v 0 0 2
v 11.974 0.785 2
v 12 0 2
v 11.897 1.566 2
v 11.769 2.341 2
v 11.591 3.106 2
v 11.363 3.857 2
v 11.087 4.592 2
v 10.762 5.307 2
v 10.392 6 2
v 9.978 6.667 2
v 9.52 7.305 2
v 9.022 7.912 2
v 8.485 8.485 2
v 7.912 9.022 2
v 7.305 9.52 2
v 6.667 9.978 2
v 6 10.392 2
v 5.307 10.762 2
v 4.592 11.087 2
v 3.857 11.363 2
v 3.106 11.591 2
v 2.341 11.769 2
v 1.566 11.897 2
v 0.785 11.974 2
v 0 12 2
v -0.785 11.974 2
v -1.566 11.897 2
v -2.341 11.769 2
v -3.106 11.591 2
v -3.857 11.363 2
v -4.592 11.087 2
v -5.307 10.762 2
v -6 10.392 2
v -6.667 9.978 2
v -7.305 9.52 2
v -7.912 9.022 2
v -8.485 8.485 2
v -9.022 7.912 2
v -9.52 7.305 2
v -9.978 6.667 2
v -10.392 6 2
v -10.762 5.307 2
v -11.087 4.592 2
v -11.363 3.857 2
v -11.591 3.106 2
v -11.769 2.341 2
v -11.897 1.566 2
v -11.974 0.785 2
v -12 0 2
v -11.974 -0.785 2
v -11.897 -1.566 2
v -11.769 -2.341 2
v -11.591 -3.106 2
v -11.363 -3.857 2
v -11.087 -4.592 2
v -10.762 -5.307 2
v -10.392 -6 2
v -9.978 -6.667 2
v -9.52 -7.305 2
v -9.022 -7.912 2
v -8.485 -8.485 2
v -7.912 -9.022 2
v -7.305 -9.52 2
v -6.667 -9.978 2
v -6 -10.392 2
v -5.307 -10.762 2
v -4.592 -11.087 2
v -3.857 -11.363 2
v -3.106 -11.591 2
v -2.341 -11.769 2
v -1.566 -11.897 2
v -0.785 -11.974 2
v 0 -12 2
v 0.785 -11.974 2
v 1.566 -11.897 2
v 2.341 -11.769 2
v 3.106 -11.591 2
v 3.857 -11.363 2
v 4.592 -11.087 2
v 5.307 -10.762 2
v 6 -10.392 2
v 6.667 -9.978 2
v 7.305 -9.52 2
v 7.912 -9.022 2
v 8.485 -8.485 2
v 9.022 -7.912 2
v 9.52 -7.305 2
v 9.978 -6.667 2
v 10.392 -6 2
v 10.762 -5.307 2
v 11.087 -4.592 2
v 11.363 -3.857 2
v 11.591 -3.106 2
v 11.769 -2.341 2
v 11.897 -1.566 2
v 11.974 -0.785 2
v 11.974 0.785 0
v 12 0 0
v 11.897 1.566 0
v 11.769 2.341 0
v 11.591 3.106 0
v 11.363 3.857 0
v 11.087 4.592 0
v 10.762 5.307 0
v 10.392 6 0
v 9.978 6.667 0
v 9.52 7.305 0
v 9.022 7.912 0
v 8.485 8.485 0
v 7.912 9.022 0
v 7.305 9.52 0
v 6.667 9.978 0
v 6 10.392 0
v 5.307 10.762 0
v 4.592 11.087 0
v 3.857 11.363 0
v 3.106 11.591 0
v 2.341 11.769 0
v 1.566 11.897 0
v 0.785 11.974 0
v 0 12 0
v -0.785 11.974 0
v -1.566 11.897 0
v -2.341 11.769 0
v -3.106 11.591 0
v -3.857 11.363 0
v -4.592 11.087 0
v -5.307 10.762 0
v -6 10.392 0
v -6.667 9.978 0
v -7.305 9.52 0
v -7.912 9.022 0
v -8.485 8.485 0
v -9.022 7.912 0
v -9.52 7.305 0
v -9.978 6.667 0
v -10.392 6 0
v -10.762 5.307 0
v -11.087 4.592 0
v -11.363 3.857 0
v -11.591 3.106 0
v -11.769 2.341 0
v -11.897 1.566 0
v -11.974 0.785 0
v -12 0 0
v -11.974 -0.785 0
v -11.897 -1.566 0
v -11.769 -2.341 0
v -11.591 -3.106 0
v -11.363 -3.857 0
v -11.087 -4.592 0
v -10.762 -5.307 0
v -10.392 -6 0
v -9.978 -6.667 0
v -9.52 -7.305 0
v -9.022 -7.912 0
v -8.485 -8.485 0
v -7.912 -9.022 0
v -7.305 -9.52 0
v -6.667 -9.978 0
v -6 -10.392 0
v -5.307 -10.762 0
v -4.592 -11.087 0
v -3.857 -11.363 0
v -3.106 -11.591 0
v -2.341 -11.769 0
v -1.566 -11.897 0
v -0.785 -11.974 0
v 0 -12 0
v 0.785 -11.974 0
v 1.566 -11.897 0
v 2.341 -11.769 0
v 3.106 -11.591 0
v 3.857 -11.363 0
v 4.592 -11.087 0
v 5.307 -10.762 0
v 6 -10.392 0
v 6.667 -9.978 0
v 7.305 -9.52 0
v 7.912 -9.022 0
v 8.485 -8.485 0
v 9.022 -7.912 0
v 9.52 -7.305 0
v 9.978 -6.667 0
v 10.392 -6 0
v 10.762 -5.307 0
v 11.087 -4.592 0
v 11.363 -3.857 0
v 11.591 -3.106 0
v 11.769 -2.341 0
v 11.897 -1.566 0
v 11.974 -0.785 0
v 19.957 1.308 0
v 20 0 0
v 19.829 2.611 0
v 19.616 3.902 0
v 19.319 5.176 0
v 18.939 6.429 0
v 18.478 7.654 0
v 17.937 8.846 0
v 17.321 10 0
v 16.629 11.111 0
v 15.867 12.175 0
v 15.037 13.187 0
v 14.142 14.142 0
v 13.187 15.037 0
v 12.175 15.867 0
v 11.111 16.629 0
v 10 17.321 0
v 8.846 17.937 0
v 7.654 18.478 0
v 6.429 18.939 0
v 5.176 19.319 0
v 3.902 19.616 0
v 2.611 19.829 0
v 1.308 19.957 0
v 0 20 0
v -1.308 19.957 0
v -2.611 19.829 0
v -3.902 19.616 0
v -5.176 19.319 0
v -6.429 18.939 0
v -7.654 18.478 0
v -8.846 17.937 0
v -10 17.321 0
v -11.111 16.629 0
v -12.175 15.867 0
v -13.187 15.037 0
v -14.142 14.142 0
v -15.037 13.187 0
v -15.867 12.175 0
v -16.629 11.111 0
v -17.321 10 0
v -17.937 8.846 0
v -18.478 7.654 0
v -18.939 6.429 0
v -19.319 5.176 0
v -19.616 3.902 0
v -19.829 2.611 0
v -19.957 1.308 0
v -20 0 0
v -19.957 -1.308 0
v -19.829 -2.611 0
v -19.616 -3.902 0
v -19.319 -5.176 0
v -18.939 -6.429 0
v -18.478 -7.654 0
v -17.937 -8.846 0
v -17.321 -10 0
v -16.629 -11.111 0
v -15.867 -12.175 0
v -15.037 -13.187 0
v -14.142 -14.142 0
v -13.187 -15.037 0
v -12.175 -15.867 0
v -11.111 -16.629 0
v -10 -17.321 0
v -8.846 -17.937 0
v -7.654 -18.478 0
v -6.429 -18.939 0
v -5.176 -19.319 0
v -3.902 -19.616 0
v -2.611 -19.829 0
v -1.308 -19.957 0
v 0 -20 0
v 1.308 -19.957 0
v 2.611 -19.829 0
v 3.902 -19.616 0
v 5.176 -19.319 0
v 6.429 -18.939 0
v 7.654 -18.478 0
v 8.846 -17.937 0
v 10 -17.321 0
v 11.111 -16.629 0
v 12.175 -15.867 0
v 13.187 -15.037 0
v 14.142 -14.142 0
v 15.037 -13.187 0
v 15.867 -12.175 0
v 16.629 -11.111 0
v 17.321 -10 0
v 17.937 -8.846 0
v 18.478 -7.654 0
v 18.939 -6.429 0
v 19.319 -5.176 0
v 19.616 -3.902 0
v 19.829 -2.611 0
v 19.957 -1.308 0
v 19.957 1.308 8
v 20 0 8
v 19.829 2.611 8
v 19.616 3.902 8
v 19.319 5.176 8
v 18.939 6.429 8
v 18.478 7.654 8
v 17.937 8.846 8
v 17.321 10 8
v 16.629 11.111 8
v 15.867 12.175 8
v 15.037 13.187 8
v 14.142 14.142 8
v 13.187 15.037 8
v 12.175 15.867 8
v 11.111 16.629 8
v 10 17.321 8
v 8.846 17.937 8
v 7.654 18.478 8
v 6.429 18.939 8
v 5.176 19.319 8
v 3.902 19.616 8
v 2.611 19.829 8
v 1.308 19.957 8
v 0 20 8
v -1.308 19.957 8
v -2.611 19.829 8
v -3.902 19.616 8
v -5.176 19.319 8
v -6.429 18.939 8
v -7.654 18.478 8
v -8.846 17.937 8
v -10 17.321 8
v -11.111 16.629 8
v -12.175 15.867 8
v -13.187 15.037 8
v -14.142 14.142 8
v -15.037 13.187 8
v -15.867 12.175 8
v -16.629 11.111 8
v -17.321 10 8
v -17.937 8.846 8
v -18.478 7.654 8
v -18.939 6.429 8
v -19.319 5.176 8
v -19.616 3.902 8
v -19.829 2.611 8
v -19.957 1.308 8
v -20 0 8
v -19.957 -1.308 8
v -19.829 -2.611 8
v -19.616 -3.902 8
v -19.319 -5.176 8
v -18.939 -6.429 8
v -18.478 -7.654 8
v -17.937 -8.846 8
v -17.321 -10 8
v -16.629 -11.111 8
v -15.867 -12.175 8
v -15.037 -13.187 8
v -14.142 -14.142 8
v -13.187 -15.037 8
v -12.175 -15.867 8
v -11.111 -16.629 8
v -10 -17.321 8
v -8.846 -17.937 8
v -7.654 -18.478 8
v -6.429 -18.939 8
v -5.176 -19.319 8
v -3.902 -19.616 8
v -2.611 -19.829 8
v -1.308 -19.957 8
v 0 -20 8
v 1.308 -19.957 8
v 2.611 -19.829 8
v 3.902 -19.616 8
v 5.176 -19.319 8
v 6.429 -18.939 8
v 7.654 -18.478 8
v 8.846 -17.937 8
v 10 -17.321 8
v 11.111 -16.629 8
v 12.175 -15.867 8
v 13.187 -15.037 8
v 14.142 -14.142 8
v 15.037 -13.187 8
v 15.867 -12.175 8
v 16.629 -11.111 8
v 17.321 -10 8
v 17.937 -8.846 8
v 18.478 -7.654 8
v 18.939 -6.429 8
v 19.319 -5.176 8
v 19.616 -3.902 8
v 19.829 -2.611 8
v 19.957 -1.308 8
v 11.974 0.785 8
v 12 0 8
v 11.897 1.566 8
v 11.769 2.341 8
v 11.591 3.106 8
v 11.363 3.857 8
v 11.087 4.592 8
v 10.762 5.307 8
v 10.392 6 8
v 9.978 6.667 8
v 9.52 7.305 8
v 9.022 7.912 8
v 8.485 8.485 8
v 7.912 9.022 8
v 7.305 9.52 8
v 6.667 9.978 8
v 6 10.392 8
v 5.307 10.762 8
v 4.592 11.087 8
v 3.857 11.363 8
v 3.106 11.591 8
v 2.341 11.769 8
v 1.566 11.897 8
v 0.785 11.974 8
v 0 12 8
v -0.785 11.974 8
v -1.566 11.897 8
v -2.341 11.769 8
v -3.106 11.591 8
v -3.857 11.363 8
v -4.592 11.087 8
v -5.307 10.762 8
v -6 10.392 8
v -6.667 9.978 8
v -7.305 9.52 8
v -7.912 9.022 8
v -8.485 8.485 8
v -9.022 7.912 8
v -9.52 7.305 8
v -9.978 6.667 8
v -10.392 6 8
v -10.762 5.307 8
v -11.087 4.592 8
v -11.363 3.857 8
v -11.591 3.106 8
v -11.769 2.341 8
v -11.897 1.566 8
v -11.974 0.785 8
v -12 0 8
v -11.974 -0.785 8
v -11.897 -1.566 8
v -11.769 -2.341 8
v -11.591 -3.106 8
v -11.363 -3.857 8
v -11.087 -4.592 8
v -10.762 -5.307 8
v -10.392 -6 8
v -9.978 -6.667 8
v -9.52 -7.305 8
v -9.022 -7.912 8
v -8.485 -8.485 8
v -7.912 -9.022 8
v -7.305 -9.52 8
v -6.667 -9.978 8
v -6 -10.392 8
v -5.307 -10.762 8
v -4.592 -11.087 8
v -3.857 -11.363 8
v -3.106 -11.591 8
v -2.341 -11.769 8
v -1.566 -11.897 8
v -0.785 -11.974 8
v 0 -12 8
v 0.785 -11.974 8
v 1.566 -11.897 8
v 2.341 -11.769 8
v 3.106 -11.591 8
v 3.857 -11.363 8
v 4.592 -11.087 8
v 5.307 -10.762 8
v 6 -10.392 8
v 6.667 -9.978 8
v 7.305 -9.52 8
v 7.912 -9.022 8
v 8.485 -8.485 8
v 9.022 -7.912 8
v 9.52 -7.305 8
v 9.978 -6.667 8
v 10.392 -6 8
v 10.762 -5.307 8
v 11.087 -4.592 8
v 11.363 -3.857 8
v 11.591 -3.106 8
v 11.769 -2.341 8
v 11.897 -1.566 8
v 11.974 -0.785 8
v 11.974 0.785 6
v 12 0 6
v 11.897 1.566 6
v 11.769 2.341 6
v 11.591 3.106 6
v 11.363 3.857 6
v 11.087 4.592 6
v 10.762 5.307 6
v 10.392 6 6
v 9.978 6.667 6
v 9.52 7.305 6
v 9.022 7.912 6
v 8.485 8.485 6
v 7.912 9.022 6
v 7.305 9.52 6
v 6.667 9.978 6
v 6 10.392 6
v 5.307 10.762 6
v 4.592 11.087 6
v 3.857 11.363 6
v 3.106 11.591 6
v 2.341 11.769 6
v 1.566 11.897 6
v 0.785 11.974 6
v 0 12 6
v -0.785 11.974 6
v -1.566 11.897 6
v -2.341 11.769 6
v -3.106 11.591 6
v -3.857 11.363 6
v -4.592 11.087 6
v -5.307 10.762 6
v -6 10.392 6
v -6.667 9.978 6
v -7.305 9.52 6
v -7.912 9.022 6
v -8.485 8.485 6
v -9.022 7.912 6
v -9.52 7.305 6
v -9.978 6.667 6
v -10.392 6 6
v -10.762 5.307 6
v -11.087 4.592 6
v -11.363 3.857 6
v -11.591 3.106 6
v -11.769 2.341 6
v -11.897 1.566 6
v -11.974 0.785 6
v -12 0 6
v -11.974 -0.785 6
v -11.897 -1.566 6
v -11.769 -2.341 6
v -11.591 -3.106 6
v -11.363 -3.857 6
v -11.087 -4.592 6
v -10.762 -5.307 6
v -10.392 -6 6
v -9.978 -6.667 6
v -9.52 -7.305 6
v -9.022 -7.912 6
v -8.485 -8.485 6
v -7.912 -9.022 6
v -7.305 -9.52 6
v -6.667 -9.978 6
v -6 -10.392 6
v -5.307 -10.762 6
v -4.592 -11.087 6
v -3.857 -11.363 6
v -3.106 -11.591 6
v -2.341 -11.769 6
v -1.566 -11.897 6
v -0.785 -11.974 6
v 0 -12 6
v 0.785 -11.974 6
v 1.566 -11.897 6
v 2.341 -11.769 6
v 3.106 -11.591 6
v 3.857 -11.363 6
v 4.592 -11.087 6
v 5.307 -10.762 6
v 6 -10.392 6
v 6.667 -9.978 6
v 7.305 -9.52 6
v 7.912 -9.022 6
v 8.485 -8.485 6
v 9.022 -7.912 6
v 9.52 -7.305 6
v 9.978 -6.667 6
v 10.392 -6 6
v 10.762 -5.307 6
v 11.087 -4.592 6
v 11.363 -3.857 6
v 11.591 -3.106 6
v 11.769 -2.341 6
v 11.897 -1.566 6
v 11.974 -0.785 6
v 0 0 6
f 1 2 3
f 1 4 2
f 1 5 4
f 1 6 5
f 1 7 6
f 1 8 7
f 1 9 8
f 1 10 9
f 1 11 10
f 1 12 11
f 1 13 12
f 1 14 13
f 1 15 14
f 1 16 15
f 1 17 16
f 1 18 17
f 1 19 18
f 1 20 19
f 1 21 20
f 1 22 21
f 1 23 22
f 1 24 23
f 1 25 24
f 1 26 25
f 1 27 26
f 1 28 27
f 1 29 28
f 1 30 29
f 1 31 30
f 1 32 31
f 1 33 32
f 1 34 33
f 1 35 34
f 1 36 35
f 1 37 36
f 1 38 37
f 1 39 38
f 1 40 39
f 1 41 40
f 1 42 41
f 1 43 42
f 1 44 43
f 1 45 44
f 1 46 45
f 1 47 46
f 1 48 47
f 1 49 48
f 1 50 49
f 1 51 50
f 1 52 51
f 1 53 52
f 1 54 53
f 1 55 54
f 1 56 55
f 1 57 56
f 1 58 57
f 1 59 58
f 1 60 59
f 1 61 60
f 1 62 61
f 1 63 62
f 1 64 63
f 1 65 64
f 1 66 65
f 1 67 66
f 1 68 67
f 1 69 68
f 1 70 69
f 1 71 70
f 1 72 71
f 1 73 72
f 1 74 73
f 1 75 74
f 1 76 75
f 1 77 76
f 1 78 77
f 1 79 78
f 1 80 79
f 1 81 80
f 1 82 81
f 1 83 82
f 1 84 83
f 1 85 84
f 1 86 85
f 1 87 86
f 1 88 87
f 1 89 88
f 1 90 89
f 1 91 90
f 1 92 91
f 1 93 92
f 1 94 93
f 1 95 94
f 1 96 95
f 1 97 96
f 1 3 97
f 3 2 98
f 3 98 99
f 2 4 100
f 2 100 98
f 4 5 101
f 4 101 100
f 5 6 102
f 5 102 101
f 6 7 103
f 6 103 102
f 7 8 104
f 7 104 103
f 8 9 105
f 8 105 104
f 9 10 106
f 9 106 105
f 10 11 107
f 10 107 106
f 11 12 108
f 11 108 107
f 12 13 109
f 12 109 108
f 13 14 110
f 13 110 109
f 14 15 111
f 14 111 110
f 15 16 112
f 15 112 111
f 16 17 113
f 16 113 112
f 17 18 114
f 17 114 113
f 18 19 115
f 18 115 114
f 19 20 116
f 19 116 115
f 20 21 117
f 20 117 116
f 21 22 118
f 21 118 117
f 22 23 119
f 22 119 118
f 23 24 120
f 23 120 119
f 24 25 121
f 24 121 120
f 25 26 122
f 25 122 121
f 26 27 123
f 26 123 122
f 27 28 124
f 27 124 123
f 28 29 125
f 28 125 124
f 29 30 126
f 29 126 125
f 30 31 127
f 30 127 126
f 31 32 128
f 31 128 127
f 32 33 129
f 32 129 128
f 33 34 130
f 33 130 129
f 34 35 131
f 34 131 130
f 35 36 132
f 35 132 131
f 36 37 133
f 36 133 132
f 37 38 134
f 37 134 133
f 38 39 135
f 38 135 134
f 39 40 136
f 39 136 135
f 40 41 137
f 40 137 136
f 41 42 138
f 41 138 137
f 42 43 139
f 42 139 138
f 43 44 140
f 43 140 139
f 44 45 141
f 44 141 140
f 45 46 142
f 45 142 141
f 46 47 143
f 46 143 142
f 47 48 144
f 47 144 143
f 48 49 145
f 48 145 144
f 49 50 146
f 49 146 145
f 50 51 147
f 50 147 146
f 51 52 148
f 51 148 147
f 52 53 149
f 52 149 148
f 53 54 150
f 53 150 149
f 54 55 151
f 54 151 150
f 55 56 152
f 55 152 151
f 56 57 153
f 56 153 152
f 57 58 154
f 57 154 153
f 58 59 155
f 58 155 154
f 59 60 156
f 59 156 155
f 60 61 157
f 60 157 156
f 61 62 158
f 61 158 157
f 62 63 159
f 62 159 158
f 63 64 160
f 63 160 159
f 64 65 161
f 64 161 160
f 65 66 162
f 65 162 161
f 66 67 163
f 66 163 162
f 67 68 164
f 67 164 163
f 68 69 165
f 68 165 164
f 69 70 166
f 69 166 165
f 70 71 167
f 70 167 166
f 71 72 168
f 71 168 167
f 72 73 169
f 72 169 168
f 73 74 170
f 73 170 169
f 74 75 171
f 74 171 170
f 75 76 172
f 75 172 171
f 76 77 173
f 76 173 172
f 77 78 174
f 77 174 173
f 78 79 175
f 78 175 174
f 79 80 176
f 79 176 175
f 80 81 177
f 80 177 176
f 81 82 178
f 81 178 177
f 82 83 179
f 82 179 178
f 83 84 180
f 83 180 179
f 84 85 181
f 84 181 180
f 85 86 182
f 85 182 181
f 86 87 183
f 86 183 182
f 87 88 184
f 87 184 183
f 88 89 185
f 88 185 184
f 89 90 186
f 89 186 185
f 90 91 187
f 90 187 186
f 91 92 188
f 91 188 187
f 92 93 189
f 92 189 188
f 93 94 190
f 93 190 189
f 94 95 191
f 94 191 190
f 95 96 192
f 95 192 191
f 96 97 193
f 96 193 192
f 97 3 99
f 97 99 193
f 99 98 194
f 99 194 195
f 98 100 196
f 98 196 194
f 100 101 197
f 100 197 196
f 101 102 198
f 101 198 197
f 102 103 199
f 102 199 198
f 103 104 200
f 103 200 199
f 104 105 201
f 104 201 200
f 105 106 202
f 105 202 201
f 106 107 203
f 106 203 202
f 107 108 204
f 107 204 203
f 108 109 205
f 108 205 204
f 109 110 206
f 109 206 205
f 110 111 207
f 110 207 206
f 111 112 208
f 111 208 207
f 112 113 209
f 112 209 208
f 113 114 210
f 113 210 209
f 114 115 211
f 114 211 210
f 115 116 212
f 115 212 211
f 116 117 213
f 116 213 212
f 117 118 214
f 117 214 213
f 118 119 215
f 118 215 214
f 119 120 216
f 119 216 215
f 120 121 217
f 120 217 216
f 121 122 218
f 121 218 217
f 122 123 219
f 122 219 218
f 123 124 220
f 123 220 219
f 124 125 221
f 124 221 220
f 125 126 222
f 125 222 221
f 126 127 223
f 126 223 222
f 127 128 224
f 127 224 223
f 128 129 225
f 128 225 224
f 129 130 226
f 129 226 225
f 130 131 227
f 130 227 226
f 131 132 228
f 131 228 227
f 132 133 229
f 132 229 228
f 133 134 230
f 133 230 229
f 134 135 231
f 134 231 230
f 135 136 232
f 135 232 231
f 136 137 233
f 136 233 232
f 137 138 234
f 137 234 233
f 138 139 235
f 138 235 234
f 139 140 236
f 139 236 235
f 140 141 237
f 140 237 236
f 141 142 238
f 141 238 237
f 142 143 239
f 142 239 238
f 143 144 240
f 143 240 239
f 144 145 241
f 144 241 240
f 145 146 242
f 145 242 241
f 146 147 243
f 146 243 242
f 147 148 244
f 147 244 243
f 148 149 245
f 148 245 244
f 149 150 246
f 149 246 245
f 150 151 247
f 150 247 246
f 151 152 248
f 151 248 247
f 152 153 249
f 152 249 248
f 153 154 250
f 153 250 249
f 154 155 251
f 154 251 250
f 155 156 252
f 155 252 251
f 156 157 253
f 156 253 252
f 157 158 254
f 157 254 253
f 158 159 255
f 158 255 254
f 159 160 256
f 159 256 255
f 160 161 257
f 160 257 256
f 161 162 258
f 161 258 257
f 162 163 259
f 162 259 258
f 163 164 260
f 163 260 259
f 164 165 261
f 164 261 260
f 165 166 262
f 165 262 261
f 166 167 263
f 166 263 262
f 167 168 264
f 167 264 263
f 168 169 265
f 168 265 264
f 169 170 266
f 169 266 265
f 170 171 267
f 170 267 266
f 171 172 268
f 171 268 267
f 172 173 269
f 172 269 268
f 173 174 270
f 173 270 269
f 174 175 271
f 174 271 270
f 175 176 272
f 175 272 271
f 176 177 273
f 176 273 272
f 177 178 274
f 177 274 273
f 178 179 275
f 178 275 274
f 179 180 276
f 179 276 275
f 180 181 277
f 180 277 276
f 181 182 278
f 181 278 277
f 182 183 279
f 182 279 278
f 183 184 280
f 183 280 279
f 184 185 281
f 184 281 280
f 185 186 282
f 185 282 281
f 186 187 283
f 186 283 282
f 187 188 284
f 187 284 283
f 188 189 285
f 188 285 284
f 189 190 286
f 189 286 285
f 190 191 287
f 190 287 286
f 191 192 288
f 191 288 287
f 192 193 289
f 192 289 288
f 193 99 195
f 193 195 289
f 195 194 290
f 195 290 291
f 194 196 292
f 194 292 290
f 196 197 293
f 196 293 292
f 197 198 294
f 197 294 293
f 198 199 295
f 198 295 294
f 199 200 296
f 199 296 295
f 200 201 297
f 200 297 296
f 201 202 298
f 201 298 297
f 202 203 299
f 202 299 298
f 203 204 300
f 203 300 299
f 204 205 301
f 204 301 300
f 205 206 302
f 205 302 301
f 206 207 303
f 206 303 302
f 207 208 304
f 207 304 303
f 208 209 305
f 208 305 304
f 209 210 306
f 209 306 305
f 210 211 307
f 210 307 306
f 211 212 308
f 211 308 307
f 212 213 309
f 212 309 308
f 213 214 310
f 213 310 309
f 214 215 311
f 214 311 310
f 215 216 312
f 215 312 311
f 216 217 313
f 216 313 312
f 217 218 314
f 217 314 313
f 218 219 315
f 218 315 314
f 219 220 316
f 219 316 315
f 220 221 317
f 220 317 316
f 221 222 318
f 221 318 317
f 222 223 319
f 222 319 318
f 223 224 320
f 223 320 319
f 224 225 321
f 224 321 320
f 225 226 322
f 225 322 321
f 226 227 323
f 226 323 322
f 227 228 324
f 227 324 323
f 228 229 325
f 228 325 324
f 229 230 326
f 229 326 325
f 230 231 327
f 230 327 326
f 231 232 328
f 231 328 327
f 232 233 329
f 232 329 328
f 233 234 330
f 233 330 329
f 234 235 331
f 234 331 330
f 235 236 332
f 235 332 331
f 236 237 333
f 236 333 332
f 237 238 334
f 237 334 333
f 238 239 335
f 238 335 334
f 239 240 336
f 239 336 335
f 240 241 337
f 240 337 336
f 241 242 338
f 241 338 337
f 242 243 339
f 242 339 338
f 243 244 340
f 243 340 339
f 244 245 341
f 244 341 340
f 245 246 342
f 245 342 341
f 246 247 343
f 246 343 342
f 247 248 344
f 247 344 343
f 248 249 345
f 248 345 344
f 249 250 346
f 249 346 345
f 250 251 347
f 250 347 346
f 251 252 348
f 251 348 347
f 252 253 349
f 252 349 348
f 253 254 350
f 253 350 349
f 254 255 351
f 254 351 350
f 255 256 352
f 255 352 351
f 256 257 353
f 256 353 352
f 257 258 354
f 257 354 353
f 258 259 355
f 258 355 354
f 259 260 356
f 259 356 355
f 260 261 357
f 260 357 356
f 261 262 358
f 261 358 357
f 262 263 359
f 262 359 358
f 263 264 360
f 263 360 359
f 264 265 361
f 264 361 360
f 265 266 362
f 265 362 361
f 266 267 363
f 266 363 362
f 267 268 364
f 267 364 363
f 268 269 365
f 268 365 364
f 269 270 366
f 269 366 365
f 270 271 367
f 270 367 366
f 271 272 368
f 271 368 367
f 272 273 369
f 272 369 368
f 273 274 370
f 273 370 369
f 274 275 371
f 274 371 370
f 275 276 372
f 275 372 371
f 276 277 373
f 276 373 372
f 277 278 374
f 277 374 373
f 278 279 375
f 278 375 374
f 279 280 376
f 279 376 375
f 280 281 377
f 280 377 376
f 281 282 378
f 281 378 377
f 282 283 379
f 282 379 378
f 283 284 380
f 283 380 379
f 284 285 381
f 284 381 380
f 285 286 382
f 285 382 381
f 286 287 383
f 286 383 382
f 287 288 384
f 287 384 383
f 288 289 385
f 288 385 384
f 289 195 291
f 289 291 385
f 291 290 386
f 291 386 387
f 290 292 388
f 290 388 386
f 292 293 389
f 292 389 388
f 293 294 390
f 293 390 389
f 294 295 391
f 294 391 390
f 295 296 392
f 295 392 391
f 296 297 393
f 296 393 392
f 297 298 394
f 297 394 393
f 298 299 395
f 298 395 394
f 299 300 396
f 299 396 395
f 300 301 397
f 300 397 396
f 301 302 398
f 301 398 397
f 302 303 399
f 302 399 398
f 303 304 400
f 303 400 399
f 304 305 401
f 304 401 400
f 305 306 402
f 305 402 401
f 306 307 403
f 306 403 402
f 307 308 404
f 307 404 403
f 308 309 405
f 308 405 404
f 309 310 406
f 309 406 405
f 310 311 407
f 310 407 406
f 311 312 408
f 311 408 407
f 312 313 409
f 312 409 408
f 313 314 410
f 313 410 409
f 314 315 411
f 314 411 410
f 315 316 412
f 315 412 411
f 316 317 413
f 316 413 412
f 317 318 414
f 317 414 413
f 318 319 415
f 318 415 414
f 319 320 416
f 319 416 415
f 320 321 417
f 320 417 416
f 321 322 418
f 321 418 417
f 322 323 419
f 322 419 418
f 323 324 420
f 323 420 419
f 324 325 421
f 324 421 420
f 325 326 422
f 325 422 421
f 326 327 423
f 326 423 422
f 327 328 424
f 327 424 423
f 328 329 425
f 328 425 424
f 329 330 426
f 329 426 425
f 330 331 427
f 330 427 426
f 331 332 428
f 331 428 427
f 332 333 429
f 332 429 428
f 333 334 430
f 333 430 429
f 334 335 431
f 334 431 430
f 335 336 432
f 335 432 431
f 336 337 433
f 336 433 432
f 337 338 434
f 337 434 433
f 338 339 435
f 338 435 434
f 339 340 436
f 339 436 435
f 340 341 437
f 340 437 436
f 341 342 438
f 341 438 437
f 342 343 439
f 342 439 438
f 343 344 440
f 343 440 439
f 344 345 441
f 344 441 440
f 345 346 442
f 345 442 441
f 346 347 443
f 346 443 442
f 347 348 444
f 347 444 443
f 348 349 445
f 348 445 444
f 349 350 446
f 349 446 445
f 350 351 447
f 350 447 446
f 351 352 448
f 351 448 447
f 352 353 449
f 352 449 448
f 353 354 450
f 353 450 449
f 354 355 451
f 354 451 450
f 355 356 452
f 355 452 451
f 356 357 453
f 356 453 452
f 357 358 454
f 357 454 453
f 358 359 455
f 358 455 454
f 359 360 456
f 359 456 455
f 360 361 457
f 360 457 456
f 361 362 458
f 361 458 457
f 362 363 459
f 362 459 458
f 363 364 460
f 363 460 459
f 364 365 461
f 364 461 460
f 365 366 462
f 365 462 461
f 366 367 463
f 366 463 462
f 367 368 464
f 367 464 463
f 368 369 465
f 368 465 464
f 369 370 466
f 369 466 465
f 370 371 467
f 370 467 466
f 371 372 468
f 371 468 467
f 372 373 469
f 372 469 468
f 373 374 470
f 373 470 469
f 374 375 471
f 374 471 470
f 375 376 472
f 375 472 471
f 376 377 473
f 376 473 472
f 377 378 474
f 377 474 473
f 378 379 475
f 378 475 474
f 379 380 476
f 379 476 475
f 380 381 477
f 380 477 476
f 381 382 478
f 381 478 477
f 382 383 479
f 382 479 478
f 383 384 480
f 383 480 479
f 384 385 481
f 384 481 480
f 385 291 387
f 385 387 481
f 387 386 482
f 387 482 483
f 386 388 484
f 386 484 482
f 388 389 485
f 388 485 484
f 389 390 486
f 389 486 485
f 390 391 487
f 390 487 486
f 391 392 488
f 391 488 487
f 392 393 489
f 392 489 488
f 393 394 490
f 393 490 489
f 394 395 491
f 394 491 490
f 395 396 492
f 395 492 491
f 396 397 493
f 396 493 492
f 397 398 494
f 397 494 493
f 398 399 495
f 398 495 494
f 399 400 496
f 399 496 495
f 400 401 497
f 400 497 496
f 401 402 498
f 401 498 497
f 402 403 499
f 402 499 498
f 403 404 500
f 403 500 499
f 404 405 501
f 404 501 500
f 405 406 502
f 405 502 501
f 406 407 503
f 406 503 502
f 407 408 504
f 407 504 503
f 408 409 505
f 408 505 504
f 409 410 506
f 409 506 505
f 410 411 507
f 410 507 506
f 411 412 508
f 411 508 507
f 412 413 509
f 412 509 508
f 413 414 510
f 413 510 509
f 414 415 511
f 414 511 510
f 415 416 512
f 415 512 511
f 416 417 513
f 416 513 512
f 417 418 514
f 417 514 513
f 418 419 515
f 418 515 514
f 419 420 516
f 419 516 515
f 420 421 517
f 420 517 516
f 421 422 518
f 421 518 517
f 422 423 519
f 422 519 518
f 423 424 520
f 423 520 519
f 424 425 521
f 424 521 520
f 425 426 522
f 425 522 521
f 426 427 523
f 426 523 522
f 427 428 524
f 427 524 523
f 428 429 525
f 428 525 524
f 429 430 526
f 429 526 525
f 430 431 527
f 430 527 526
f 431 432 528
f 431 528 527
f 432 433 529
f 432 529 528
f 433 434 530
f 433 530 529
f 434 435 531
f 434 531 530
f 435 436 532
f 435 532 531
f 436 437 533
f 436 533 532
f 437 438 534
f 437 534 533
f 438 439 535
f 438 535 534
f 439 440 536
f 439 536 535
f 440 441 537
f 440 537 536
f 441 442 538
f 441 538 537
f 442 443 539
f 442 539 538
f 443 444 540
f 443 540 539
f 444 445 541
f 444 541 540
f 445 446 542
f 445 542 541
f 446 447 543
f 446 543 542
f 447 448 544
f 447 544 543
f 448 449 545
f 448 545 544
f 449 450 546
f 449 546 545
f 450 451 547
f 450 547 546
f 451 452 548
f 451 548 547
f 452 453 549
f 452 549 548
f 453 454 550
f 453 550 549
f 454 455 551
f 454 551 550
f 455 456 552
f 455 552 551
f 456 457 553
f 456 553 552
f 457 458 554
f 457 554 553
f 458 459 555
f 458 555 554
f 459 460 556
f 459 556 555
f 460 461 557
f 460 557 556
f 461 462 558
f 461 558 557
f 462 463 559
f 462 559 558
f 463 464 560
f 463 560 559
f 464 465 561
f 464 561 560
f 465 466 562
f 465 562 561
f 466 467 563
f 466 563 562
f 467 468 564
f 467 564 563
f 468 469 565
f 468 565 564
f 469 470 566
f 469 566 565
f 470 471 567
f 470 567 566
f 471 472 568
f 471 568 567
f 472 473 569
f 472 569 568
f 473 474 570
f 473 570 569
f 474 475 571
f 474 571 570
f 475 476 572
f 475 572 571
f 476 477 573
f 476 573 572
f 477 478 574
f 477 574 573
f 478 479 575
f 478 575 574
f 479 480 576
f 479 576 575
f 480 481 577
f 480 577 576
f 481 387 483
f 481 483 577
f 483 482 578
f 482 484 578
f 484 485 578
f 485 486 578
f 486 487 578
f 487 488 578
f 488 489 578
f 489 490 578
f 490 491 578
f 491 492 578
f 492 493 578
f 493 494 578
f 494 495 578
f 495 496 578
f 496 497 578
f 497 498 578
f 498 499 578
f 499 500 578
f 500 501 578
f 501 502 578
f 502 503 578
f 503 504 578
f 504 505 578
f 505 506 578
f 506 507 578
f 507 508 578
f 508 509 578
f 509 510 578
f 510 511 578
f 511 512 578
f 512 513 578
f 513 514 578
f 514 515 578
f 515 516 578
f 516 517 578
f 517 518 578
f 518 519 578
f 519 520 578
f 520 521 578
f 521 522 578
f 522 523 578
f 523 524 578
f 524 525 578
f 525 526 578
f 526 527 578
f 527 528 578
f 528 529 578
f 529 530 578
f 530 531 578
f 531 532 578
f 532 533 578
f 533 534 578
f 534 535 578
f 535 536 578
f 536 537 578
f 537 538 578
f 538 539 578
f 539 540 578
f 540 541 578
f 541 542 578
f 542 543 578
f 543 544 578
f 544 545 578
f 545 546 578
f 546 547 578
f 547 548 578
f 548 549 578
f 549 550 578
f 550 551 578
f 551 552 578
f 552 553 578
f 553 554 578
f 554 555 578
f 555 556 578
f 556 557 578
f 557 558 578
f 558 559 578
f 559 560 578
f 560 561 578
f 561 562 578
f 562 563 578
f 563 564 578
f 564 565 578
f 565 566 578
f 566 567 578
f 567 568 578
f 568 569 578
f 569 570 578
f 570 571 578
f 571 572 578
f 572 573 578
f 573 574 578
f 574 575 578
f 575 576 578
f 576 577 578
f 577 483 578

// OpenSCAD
// Original MechIntel educational model. CC0-1.0. Units: mm.
// Not a standardized or load-rated component.
$fn=96;
// Section points: [radius, height], mm. Edit to change the profile.
section=[[0, 2], [12, 2], [12, 0], [20, 0], [20, 8], [12, 8], [12, 6], [0, 6]];
rotate_extrude($fn=96) polygon(points=section);
